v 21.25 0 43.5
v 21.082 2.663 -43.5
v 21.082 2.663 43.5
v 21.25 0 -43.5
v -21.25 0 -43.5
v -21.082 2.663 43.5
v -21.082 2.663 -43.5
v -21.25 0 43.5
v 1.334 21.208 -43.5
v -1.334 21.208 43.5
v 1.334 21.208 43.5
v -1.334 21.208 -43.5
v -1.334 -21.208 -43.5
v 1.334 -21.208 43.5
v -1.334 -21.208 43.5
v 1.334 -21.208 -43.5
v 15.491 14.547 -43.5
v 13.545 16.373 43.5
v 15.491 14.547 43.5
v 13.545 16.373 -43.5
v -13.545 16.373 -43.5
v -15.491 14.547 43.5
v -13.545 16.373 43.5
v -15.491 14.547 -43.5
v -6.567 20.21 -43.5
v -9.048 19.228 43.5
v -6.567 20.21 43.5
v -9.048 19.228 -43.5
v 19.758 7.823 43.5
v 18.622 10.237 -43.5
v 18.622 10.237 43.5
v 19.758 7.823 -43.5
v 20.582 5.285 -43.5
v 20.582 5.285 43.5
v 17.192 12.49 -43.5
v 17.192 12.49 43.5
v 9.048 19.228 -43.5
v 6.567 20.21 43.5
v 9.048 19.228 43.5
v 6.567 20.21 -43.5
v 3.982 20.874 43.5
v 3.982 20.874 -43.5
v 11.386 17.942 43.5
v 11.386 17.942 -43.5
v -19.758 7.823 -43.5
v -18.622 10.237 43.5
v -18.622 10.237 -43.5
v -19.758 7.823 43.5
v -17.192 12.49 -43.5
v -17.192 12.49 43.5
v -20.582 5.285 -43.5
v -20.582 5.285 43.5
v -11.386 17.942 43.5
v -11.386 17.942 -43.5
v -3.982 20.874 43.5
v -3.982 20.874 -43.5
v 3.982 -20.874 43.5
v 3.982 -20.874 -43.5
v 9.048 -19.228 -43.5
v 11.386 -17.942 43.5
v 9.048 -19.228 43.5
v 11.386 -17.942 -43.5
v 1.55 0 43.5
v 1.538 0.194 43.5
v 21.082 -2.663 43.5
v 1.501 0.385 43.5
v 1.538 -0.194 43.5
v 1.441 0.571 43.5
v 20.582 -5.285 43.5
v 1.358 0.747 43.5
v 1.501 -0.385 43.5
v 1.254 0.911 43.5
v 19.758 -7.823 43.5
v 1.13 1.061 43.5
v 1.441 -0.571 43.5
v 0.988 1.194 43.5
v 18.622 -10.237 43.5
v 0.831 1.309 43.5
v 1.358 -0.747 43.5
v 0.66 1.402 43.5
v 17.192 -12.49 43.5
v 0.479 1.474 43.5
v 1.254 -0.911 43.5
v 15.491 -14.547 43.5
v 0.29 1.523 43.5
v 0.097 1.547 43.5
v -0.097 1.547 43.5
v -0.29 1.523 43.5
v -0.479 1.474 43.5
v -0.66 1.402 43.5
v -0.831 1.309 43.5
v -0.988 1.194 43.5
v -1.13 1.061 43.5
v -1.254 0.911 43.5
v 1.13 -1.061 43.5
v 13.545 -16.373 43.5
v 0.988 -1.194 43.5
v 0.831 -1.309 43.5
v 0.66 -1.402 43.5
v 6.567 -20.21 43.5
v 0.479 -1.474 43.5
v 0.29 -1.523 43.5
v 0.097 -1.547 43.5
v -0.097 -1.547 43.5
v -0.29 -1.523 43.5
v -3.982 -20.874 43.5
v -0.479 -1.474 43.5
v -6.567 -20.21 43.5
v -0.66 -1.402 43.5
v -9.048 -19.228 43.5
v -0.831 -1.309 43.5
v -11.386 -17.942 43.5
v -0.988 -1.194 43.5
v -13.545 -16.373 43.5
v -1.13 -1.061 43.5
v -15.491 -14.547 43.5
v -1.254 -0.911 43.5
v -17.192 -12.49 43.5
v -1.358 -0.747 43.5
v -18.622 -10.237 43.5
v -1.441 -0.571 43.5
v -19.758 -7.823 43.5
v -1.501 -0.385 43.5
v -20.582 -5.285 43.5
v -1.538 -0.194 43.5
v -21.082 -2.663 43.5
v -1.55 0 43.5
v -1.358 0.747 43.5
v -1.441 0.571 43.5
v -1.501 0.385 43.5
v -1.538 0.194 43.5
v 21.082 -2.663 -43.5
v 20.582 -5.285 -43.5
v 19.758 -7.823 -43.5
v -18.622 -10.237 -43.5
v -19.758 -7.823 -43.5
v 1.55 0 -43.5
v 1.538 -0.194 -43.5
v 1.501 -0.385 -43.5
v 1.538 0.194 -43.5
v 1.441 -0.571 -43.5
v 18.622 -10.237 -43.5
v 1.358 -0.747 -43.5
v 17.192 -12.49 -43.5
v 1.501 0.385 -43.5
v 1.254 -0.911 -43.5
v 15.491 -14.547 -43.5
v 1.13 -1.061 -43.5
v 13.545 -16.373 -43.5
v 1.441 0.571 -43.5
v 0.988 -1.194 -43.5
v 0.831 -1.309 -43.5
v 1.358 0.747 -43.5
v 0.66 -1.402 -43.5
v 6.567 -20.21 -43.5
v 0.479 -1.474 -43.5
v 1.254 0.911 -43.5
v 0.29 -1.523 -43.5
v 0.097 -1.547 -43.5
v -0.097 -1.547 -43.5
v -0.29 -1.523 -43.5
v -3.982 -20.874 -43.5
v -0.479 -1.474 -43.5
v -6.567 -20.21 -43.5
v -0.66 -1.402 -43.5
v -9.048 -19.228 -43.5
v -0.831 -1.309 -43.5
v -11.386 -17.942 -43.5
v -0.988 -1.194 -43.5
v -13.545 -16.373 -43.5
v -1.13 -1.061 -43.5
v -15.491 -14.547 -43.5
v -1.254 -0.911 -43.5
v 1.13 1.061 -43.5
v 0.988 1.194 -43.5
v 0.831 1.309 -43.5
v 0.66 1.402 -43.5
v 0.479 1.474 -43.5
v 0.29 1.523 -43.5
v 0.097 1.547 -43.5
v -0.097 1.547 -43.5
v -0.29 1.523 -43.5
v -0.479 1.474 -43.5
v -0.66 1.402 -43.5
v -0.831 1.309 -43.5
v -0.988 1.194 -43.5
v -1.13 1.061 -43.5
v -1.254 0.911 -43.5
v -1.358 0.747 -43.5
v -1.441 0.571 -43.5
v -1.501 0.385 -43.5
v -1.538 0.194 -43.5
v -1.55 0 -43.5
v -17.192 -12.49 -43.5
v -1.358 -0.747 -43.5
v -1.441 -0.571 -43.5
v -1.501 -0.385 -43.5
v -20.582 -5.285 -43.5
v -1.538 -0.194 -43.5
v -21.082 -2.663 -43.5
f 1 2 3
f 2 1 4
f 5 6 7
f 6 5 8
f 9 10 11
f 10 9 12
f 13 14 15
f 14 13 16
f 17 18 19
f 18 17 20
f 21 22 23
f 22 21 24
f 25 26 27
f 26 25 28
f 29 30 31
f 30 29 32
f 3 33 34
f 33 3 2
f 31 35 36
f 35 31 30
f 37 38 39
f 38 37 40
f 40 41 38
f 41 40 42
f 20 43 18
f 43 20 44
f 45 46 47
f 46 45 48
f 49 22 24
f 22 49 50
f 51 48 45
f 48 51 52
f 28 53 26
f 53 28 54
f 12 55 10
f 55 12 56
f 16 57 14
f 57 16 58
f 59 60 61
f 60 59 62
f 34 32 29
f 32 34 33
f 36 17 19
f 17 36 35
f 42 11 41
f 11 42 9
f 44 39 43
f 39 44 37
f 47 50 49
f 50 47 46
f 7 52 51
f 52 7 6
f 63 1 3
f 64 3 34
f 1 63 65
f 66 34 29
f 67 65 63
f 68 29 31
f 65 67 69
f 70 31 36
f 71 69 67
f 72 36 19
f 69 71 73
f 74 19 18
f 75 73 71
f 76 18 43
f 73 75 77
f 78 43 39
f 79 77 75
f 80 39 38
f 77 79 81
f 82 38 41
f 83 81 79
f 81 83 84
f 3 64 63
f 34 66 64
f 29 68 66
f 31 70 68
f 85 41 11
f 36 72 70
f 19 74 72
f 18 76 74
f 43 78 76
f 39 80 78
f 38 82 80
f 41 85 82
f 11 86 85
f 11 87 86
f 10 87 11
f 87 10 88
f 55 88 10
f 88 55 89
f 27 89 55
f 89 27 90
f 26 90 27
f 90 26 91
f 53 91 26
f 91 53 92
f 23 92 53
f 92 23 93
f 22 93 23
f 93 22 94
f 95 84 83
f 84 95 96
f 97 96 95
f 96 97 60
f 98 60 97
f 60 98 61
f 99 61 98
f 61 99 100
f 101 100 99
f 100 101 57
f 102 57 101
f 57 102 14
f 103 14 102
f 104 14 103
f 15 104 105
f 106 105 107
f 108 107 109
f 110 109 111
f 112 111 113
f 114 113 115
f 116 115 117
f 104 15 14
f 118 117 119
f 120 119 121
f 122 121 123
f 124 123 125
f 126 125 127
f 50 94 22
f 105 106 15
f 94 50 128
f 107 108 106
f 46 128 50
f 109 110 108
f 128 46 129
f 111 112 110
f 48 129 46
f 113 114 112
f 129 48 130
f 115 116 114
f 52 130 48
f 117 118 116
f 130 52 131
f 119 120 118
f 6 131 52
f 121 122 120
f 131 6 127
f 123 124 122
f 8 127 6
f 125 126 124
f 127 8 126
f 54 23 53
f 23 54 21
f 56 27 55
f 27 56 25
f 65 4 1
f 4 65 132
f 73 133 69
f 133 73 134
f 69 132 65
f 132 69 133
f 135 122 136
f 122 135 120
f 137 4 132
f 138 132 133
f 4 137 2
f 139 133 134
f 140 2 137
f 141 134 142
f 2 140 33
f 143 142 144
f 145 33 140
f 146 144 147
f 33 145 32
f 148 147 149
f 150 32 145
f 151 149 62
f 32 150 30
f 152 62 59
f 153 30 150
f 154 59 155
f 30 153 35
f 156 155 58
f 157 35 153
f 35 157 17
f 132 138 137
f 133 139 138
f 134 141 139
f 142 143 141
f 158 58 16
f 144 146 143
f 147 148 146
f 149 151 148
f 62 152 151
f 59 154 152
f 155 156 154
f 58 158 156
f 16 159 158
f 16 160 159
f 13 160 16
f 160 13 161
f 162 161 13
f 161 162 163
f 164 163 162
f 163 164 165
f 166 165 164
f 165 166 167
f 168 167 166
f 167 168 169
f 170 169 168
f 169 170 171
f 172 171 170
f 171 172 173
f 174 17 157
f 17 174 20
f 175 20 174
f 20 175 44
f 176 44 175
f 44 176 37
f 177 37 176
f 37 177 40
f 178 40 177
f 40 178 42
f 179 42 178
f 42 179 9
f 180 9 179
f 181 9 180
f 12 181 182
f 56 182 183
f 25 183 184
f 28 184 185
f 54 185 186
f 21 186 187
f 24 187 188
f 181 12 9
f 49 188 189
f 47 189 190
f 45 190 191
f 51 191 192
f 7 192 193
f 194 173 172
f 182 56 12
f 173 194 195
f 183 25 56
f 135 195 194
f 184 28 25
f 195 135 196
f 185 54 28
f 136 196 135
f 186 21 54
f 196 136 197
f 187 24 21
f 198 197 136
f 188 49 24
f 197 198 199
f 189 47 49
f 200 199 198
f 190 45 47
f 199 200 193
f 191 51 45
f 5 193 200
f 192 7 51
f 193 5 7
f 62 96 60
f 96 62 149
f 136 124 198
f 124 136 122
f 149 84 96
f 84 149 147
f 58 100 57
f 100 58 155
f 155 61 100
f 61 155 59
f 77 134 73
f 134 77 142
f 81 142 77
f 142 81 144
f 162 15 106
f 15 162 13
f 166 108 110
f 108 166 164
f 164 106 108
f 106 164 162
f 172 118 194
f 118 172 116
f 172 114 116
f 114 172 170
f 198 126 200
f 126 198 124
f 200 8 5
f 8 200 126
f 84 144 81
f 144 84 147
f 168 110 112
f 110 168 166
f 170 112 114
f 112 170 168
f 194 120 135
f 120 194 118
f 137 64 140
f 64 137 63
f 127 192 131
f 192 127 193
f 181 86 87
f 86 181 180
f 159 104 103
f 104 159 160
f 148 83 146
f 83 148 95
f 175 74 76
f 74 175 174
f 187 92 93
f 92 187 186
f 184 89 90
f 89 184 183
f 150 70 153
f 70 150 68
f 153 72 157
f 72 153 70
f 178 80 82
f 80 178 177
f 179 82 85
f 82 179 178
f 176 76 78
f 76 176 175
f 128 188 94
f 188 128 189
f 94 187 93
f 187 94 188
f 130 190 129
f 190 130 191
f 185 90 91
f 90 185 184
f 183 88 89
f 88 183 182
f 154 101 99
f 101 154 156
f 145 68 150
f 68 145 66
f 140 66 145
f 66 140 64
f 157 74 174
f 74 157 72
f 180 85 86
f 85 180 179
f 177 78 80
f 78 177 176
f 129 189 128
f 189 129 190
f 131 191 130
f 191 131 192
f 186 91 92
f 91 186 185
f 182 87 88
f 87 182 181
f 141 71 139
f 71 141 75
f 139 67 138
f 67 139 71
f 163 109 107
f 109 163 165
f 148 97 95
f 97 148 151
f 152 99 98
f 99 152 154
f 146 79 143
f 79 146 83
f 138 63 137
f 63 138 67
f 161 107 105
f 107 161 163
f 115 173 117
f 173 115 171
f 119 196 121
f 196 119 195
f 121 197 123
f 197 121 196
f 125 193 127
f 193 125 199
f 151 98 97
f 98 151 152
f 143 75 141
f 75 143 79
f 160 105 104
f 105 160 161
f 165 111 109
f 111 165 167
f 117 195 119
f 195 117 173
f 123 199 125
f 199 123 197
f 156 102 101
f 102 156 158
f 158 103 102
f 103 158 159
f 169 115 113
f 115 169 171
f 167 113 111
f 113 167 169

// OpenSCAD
$fn = 50;


difference() {
	union() {
		translate(v = [0, 0, -43.5000000000]) {
			cylinder(h = 87, r = 21.2500000000);
		}
	}
	union() {
		translate(v = [0, 0, -100.0000000000]) {
			cylinder(h = 200, r = 1.5500000000);
		}
	}
}
